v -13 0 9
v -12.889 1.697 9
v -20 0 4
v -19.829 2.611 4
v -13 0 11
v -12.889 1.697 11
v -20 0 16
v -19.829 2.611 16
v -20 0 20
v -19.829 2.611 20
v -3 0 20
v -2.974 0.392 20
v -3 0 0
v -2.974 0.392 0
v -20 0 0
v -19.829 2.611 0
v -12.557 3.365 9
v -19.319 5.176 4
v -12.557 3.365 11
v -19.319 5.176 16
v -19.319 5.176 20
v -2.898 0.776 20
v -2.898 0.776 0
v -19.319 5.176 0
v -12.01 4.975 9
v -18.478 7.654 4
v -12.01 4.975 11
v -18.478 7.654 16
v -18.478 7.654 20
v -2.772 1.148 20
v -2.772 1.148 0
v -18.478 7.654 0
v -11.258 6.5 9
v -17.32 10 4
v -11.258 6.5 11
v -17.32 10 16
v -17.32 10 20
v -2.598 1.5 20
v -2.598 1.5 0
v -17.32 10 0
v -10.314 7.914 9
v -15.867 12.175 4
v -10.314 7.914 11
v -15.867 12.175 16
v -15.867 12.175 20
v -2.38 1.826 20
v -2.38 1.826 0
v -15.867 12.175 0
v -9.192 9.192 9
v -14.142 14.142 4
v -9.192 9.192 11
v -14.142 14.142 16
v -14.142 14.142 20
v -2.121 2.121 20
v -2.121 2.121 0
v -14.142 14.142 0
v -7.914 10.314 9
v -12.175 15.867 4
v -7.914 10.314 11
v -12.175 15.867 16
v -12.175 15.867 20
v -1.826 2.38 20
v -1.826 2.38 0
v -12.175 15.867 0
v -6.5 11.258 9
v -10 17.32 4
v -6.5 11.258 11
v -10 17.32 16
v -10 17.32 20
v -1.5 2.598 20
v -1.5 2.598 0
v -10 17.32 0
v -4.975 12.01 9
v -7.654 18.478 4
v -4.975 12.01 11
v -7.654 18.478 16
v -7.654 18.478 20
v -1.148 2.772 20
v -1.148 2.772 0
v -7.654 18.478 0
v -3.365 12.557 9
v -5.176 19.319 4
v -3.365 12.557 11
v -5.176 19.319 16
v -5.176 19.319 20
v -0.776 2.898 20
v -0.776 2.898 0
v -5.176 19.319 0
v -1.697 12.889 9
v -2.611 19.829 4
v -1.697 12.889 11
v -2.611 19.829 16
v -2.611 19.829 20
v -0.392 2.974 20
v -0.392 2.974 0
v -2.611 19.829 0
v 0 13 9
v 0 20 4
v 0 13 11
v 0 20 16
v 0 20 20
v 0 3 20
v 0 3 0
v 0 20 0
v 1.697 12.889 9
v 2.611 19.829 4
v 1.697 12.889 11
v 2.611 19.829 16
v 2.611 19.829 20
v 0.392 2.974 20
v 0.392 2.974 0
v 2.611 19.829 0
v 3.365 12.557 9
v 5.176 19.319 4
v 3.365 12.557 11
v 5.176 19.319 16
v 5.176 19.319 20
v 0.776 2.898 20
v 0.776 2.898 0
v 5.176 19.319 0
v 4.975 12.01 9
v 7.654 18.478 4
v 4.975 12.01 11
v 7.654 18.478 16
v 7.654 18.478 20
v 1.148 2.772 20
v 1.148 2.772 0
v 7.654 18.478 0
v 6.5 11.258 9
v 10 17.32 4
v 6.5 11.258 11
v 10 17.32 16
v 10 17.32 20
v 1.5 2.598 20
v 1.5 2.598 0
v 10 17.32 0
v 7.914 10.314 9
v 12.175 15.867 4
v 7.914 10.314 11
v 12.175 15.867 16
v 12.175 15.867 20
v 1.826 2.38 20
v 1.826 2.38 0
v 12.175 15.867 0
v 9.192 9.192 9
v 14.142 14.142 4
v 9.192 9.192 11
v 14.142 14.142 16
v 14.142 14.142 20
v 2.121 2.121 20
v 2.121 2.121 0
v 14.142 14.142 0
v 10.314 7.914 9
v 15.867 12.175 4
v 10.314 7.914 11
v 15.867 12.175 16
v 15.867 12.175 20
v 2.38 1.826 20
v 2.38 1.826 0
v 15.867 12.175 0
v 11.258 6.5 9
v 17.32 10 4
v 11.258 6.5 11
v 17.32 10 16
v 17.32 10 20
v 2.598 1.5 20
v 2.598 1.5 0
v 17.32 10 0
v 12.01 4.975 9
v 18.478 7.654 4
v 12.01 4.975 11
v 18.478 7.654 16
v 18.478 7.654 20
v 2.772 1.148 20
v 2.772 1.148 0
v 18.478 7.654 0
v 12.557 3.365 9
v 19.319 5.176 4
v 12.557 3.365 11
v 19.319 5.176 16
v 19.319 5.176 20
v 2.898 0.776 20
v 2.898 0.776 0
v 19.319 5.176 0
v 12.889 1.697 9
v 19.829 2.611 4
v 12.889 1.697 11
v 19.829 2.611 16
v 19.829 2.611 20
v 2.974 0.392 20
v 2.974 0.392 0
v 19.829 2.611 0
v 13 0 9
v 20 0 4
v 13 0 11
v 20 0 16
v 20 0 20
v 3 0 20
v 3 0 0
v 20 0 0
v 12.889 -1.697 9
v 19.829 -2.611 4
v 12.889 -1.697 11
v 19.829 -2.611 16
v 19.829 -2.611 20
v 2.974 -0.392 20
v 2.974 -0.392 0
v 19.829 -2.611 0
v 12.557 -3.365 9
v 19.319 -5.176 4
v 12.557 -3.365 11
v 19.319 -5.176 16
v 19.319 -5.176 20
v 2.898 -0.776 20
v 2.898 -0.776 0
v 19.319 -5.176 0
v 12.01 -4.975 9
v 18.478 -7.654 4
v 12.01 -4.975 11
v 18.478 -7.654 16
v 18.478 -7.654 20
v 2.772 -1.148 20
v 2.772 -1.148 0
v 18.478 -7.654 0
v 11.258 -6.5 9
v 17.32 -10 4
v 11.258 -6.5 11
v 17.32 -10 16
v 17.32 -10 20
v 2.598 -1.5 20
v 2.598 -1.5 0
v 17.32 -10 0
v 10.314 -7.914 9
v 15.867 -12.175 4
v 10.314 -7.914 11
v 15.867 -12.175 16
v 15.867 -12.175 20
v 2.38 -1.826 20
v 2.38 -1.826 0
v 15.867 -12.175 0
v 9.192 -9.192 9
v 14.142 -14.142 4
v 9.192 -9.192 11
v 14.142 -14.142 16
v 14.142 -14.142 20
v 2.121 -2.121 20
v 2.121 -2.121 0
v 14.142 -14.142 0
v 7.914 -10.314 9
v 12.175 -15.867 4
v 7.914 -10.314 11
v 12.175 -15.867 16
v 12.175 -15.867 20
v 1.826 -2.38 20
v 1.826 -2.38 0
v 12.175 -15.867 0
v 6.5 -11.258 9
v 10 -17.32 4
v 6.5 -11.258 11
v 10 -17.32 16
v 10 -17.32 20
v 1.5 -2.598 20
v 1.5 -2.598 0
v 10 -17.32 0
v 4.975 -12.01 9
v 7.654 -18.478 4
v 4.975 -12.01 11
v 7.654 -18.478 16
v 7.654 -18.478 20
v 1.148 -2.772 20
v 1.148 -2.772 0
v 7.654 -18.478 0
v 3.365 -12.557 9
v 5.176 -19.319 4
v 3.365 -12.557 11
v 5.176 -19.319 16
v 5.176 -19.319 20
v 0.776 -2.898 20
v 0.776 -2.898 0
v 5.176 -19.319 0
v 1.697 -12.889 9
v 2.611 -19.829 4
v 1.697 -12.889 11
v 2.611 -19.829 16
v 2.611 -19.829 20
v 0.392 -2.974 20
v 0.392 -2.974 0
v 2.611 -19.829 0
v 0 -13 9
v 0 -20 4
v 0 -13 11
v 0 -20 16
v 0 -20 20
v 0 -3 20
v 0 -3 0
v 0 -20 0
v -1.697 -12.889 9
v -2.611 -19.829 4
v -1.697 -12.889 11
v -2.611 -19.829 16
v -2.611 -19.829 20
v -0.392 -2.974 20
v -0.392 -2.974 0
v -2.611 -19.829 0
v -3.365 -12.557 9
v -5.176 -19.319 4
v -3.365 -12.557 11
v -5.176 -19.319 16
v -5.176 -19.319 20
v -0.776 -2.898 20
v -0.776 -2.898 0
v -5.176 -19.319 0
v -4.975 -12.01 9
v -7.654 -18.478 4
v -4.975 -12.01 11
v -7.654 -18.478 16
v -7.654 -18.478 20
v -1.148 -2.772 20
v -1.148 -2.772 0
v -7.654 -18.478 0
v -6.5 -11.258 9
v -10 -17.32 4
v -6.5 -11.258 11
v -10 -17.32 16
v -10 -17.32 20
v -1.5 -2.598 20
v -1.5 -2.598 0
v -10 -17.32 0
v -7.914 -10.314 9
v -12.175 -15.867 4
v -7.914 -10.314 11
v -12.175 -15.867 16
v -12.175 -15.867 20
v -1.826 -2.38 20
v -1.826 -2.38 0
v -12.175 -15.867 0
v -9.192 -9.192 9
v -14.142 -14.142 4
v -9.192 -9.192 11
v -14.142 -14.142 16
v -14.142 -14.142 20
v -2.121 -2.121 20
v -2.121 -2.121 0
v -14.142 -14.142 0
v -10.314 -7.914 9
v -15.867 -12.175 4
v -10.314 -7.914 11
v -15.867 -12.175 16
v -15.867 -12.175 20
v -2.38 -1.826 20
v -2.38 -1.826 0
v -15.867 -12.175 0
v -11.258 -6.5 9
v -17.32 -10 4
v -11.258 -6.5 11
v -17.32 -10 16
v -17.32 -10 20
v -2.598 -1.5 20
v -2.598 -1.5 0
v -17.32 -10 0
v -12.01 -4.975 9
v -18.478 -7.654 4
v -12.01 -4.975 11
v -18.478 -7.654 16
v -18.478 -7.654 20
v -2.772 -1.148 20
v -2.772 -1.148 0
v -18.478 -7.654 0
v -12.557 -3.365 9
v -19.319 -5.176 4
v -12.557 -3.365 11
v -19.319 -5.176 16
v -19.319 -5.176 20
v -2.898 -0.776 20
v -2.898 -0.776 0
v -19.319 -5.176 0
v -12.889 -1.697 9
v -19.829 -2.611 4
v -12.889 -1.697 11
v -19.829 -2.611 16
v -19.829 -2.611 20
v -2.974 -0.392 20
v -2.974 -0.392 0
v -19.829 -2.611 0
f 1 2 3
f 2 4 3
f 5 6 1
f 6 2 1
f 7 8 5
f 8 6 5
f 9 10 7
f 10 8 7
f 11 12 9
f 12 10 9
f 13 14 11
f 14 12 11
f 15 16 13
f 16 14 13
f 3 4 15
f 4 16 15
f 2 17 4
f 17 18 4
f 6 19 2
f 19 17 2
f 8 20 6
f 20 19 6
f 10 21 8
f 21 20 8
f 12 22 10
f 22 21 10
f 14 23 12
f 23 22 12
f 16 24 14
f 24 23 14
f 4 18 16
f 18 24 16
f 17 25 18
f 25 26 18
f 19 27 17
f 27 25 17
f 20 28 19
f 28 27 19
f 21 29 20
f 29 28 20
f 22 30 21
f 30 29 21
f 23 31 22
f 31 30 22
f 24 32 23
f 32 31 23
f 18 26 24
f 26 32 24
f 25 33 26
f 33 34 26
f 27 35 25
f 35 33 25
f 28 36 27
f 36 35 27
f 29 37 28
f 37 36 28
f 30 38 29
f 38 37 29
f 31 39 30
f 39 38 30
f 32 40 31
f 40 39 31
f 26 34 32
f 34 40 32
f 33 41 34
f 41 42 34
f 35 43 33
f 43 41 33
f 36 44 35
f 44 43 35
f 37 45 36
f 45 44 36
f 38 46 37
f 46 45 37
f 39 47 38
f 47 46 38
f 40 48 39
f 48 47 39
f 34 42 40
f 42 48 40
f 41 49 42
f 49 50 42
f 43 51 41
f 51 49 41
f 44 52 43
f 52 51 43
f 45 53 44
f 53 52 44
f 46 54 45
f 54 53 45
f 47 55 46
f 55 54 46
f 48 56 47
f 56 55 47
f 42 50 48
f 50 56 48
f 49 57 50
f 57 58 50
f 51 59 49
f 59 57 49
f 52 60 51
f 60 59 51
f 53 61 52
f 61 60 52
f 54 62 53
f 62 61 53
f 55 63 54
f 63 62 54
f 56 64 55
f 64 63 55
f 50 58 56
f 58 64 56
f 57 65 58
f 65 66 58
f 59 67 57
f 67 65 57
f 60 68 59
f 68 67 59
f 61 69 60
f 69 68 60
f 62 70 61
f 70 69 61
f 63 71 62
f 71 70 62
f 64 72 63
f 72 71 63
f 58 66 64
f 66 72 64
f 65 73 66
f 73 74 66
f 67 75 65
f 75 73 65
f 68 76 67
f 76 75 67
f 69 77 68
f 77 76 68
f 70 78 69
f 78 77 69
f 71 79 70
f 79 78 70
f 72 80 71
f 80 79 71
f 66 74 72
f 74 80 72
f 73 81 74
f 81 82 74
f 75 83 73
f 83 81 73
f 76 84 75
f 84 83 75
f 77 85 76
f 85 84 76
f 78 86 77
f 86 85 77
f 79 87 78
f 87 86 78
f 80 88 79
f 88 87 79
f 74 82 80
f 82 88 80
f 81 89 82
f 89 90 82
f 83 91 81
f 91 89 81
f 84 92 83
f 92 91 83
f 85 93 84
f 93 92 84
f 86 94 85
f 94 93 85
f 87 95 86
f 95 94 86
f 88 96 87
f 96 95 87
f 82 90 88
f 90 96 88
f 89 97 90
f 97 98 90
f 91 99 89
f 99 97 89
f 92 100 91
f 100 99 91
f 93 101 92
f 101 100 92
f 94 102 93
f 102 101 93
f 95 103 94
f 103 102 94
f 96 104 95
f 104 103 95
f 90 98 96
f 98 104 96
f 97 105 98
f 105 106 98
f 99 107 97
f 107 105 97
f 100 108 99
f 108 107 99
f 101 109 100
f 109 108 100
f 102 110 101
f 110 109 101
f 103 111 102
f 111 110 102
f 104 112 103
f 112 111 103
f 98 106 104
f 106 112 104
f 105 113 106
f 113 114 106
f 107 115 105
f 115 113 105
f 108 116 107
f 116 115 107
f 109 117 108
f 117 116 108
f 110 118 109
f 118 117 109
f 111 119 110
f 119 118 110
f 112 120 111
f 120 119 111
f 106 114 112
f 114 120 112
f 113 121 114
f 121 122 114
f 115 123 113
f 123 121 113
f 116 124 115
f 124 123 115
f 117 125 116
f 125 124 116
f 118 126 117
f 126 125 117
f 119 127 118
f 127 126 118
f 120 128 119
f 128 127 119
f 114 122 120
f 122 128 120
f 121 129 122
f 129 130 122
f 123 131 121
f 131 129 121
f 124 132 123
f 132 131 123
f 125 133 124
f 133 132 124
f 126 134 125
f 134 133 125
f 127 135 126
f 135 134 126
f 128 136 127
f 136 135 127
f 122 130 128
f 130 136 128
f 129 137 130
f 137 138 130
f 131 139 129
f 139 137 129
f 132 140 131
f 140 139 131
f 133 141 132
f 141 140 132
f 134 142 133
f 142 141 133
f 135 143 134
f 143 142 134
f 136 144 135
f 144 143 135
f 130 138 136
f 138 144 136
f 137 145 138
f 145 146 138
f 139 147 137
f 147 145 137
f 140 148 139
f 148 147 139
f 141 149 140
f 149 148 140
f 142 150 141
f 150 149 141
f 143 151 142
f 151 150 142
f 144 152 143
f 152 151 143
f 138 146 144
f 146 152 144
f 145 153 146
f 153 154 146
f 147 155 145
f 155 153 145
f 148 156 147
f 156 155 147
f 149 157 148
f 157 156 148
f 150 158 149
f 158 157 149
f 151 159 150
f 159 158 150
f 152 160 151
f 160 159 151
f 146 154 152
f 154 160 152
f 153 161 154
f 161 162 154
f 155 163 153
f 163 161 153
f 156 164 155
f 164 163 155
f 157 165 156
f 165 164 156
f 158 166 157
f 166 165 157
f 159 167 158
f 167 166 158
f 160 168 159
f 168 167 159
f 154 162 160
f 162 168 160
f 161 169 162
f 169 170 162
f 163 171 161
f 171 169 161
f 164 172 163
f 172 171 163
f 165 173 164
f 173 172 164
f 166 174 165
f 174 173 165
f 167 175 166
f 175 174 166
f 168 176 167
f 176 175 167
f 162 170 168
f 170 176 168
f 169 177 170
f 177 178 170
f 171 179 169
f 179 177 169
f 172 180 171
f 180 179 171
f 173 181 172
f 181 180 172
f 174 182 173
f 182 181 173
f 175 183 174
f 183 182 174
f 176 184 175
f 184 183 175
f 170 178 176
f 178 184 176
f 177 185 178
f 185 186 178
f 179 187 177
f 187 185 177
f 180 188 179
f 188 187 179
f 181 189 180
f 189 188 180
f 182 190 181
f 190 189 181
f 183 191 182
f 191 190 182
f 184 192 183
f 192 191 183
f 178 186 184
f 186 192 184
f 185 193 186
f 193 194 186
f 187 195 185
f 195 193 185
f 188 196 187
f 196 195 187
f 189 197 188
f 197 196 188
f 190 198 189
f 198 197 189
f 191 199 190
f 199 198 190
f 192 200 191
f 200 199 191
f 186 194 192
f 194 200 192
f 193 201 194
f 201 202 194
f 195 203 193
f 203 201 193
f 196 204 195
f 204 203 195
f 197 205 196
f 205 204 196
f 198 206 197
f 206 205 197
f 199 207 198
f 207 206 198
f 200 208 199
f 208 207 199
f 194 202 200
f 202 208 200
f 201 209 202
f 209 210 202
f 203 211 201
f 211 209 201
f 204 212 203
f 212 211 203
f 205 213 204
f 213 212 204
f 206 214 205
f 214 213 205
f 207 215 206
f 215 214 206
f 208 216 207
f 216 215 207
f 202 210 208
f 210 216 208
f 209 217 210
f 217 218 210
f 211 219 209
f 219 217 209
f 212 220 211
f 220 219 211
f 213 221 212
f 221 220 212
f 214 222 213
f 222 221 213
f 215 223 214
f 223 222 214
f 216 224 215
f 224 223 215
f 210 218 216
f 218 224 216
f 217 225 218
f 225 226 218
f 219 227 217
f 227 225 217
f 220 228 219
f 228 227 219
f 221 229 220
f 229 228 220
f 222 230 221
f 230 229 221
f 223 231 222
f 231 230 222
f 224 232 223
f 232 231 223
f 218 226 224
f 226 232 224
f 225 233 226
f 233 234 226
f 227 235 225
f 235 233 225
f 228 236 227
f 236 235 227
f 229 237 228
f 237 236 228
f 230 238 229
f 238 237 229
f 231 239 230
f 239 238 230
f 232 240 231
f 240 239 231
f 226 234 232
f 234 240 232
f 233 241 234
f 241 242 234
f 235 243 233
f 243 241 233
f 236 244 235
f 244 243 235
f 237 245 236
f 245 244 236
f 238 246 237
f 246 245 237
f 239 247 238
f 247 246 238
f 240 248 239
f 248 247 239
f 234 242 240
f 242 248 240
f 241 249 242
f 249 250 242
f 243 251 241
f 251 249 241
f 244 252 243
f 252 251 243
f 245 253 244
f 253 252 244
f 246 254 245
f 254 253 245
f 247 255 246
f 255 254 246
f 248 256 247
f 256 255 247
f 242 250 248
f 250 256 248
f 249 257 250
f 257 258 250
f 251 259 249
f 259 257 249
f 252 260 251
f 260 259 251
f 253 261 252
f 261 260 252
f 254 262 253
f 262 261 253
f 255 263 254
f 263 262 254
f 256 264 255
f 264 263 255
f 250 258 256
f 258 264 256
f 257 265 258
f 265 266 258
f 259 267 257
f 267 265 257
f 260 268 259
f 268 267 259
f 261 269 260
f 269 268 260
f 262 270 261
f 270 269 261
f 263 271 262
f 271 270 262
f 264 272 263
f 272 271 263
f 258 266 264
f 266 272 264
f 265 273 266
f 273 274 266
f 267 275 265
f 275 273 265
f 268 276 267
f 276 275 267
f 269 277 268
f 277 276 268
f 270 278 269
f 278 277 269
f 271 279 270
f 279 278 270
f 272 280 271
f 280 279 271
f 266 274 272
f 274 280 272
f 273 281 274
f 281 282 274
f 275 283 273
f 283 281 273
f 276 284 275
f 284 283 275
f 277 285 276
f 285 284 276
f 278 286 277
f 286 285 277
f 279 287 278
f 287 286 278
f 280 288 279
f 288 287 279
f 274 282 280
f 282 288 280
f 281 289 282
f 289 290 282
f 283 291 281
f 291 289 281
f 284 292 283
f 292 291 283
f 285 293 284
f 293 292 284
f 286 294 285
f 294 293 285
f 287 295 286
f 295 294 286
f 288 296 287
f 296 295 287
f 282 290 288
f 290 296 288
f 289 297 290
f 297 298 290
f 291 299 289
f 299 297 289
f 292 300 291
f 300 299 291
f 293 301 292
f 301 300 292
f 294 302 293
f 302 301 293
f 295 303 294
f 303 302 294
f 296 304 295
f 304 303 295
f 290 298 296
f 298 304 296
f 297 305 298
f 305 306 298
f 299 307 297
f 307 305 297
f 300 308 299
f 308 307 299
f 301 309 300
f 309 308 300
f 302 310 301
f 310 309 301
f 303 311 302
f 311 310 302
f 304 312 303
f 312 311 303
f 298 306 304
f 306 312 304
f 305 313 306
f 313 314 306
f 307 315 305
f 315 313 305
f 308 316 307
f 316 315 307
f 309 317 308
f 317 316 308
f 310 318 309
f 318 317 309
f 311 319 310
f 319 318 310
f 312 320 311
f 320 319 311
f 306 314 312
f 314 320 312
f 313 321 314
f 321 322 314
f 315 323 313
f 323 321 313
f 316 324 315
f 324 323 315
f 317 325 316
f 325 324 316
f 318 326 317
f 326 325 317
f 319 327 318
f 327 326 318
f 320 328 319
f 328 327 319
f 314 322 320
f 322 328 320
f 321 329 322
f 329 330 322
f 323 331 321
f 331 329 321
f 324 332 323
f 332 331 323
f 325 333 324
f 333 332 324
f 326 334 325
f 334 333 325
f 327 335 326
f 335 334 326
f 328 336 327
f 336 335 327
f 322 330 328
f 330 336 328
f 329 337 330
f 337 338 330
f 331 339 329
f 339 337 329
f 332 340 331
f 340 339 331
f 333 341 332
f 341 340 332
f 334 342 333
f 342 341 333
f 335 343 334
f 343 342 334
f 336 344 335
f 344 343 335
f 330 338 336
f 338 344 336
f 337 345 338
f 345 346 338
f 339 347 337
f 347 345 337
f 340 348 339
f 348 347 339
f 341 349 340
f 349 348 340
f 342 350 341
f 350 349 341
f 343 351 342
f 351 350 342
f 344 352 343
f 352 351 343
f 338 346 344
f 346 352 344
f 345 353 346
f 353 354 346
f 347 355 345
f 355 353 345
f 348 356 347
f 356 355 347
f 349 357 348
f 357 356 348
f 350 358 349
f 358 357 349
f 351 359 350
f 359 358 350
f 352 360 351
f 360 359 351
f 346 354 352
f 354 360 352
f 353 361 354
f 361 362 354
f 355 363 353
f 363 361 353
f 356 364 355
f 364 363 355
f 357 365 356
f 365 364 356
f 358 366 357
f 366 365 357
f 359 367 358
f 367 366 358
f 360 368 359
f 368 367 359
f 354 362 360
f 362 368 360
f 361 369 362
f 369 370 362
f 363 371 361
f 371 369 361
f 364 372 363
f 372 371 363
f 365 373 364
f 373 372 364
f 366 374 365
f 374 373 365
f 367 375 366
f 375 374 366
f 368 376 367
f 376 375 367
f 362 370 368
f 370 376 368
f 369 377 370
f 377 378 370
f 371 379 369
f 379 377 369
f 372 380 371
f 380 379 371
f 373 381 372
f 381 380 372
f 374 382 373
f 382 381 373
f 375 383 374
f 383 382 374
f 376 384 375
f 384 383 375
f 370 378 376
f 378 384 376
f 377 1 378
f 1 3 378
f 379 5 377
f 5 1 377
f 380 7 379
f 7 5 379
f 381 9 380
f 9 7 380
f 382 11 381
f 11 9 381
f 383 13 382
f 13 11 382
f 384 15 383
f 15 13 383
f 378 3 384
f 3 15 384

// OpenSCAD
// Checkpoint 2b - Revolved part. A pulley: one profile, one revolve.
$fn = 48;
rotate_extrude()
  polygon([
    [3, 0], [20, 0], [20, 4], [13, 9], [13, 11], [20, 16], [20, 20], [3, 20],
  ]);
